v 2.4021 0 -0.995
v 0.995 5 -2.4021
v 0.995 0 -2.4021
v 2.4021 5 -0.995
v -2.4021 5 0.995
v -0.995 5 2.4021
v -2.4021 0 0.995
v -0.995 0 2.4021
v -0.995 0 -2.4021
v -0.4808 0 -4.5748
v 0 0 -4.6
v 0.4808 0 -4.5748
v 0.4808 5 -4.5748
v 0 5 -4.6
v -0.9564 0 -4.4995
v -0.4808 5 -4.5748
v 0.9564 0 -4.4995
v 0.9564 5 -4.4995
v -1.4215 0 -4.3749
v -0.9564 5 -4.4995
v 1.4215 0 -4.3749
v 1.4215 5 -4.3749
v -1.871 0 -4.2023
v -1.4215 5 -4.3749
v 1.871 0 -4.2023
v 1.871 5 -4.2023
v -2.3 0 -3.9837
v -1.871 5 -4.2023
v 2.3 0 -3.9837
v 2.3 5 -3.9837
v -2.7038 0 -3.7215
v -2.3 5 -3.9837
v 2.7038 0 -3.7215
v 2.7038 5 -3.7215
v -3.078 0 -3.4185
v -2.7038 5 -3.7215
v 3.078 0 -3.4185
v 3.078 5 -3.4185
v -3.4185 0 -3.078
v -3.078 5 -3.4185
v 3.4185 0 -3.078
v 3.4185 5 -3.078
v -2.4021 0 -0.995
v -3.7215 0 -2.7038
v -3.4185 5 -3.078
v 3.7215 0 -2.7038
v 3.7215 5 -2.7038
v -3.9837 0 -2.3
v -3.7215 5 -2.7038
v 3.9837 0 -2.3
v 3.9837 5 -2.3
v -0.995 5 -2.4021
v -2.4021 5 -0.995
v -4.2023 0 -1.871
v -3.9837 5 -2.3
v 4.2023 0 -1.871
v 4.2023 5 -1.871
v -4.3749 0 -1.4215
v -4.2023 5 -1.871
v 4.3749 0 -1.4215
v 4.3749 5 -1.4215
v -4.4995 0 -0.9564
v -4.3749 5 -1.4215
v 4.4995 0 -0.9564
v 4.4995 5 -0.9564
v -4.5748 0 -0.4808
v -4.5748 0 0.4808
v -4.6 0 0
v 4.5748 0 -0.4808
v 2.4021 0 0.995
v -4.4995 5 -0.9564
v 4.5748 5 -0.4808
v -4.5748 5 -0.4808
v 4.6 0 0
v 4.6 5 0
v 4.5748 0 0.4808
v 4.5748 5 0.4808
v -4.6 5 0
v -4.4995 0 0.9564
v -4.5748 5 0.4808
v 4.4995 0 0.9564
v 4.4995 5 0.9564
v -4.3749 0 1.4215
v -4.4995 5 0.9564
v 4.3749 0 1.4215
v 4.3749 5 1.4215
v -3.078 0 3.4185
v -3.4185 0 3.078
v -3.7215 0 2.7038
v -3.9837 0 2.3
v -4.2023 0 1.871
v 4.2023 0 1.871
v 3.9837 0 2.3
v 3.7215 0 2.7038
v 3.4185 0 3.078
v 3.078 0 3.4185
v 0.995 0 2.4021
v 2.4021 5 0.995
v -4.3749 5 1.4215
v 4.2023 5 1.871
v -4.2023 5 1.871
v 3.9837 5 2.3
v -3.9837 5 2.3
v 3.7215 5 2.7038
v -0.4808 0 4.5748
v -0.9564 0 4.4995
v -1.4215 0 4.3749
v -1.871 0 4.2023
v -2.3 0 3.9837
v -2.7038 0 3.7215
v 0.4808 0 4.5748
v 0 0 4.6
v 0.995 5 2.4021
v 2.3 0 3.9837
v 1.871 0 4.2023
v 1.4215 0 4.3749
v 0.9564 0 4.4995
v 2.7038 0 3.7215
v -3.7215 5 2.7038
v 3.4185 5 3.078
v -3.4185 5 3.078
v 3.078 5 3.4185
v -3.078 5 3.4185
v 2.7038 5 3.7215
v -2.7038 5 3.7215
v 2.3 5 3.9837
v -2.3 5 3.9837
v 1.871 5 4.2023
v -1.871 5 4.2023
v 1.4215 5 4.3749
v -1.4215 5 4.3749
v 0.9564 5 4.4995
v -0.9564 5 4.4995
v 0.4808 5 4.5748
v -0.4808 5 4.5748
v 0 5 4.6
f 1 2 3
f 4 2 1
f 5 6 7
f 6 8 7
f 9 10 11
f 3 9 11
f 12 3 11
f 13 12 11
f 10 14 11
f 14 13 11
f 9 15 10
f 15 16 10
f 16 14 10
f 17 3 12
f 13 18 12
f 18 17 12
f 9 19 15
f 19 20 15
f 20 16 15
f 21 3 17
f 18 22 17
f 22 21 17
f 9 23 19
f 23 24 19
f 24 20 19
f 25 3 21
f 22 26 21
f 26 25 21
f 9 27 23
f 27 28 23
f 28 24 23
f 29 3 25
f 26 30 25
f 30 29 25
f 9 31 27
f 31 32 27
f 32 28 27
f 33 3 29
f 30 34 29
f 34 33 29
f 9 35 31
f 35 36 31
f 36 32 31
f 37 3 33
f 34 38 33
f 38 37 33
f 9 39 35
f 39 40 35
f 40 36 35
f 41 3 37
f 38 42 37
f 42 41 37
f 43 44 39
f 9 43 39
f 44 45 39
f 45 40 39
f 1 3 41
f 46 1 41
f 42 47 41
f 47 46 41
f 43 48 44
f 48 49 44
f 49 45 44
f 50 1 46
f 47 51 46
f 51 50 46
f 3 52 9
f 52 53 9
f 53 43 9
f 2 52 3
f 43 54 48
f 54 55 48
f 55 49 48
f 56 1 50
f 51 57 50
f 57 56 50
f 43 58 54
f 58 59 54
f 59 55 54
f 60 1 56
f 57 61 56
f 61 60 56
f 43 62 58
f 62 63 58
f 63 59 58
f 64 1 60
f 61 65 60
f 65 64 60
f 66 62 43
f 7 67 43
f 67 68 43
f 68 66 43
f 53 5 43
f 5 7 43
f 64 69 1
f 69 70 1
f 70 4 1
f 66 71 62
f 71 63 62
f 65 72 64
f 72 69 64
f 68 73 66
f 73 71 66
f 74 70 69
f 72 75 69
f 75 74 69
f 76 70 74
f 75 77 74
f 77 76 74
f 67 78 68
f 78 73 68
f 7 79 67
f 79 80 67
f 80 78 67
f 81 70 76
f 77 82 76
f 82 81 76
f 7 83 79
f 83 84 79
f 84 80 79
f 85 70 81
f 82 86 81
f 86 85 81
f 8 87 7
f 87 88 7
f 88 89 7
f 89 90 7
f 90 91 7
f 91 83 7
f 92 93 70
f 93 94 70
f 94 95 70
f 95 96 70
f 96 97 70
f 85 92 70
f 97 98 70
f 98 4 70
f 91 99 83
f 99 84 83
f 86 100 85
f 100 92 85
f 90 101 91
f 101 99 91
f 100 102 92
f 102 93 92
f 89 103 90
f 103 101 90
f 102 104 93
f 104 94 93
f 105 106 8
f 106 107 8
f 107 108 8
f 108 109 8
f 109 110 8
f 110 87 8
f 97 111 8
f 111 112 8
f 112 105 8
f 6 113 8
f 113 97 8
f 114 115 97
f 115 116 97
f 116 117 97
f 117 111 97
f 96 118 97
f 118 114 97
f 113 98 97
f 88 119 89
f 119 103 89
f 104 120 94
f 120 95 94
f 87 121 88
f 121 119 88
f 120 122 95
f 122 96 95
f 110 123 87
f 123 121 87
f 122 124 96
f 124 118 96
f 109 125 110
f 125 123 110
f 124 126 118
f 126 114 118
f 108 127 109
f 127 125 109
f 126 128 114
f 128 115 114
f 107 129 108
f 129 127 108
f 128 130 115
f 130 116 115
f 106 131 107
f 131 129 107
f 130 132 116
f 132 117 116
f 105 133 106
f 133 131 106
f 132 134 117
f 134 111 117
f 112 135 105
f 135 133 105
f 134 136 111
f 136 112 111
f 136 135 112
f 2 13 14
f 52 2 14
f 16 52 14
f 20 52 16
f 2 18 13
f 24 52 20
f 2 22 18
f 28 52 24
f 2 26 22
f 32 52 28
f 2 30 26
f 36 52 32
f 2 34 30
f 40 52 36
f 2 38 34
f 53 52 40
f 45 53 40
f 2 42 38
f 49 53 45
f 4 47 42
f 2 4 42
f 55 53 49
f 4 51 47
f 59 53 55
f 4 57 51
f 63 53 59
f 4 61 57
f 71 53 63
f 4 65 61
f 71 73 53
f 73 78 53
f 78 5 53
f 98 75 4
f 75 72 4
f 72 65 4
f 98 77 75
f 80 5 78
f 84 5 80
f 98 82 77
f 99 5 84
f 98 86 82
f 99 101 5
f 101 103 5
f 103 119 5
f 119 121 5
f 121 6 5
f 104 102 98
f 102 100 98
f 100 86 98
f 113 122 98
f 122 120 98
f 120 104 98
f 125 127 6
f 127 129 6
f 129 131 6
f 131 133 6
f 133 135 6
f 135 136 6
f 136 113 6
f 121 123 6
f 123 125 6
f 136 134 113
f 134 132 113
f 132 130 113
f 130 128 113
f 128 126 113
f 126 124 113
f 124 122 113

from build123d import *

# Parameters (mm, degrees)
SKETCH1_R           = 4.6
BOSS_EXTRUDE1_DEPTH = 5


with BuildPart() as part:
    # Sketch1 → Boss-Extrude1 (new body)
    with BuildSketch(Plane(origin=(0, 0, 0), x_dir=(1, 0, 0), z_dir=(0, 1, 0))):
        Circle(SKETCH1_R)
        Polygon((-0.994976924, 2.402086785), (-2.402086785, 0.994976924), (-2.402086785, -0.994976924), (-0.994976924, -2.402086785), (0.994976924, -2.402086785), (2.402086785, -0.994976924), (2.402086785, 0.994976924), (0.994976924, 2.402086785), align=None, mode=Mode.SUBTRACT)
    extrude(amount=BOSS_EXTRUDE1_DEPTH)


solid = part.part
